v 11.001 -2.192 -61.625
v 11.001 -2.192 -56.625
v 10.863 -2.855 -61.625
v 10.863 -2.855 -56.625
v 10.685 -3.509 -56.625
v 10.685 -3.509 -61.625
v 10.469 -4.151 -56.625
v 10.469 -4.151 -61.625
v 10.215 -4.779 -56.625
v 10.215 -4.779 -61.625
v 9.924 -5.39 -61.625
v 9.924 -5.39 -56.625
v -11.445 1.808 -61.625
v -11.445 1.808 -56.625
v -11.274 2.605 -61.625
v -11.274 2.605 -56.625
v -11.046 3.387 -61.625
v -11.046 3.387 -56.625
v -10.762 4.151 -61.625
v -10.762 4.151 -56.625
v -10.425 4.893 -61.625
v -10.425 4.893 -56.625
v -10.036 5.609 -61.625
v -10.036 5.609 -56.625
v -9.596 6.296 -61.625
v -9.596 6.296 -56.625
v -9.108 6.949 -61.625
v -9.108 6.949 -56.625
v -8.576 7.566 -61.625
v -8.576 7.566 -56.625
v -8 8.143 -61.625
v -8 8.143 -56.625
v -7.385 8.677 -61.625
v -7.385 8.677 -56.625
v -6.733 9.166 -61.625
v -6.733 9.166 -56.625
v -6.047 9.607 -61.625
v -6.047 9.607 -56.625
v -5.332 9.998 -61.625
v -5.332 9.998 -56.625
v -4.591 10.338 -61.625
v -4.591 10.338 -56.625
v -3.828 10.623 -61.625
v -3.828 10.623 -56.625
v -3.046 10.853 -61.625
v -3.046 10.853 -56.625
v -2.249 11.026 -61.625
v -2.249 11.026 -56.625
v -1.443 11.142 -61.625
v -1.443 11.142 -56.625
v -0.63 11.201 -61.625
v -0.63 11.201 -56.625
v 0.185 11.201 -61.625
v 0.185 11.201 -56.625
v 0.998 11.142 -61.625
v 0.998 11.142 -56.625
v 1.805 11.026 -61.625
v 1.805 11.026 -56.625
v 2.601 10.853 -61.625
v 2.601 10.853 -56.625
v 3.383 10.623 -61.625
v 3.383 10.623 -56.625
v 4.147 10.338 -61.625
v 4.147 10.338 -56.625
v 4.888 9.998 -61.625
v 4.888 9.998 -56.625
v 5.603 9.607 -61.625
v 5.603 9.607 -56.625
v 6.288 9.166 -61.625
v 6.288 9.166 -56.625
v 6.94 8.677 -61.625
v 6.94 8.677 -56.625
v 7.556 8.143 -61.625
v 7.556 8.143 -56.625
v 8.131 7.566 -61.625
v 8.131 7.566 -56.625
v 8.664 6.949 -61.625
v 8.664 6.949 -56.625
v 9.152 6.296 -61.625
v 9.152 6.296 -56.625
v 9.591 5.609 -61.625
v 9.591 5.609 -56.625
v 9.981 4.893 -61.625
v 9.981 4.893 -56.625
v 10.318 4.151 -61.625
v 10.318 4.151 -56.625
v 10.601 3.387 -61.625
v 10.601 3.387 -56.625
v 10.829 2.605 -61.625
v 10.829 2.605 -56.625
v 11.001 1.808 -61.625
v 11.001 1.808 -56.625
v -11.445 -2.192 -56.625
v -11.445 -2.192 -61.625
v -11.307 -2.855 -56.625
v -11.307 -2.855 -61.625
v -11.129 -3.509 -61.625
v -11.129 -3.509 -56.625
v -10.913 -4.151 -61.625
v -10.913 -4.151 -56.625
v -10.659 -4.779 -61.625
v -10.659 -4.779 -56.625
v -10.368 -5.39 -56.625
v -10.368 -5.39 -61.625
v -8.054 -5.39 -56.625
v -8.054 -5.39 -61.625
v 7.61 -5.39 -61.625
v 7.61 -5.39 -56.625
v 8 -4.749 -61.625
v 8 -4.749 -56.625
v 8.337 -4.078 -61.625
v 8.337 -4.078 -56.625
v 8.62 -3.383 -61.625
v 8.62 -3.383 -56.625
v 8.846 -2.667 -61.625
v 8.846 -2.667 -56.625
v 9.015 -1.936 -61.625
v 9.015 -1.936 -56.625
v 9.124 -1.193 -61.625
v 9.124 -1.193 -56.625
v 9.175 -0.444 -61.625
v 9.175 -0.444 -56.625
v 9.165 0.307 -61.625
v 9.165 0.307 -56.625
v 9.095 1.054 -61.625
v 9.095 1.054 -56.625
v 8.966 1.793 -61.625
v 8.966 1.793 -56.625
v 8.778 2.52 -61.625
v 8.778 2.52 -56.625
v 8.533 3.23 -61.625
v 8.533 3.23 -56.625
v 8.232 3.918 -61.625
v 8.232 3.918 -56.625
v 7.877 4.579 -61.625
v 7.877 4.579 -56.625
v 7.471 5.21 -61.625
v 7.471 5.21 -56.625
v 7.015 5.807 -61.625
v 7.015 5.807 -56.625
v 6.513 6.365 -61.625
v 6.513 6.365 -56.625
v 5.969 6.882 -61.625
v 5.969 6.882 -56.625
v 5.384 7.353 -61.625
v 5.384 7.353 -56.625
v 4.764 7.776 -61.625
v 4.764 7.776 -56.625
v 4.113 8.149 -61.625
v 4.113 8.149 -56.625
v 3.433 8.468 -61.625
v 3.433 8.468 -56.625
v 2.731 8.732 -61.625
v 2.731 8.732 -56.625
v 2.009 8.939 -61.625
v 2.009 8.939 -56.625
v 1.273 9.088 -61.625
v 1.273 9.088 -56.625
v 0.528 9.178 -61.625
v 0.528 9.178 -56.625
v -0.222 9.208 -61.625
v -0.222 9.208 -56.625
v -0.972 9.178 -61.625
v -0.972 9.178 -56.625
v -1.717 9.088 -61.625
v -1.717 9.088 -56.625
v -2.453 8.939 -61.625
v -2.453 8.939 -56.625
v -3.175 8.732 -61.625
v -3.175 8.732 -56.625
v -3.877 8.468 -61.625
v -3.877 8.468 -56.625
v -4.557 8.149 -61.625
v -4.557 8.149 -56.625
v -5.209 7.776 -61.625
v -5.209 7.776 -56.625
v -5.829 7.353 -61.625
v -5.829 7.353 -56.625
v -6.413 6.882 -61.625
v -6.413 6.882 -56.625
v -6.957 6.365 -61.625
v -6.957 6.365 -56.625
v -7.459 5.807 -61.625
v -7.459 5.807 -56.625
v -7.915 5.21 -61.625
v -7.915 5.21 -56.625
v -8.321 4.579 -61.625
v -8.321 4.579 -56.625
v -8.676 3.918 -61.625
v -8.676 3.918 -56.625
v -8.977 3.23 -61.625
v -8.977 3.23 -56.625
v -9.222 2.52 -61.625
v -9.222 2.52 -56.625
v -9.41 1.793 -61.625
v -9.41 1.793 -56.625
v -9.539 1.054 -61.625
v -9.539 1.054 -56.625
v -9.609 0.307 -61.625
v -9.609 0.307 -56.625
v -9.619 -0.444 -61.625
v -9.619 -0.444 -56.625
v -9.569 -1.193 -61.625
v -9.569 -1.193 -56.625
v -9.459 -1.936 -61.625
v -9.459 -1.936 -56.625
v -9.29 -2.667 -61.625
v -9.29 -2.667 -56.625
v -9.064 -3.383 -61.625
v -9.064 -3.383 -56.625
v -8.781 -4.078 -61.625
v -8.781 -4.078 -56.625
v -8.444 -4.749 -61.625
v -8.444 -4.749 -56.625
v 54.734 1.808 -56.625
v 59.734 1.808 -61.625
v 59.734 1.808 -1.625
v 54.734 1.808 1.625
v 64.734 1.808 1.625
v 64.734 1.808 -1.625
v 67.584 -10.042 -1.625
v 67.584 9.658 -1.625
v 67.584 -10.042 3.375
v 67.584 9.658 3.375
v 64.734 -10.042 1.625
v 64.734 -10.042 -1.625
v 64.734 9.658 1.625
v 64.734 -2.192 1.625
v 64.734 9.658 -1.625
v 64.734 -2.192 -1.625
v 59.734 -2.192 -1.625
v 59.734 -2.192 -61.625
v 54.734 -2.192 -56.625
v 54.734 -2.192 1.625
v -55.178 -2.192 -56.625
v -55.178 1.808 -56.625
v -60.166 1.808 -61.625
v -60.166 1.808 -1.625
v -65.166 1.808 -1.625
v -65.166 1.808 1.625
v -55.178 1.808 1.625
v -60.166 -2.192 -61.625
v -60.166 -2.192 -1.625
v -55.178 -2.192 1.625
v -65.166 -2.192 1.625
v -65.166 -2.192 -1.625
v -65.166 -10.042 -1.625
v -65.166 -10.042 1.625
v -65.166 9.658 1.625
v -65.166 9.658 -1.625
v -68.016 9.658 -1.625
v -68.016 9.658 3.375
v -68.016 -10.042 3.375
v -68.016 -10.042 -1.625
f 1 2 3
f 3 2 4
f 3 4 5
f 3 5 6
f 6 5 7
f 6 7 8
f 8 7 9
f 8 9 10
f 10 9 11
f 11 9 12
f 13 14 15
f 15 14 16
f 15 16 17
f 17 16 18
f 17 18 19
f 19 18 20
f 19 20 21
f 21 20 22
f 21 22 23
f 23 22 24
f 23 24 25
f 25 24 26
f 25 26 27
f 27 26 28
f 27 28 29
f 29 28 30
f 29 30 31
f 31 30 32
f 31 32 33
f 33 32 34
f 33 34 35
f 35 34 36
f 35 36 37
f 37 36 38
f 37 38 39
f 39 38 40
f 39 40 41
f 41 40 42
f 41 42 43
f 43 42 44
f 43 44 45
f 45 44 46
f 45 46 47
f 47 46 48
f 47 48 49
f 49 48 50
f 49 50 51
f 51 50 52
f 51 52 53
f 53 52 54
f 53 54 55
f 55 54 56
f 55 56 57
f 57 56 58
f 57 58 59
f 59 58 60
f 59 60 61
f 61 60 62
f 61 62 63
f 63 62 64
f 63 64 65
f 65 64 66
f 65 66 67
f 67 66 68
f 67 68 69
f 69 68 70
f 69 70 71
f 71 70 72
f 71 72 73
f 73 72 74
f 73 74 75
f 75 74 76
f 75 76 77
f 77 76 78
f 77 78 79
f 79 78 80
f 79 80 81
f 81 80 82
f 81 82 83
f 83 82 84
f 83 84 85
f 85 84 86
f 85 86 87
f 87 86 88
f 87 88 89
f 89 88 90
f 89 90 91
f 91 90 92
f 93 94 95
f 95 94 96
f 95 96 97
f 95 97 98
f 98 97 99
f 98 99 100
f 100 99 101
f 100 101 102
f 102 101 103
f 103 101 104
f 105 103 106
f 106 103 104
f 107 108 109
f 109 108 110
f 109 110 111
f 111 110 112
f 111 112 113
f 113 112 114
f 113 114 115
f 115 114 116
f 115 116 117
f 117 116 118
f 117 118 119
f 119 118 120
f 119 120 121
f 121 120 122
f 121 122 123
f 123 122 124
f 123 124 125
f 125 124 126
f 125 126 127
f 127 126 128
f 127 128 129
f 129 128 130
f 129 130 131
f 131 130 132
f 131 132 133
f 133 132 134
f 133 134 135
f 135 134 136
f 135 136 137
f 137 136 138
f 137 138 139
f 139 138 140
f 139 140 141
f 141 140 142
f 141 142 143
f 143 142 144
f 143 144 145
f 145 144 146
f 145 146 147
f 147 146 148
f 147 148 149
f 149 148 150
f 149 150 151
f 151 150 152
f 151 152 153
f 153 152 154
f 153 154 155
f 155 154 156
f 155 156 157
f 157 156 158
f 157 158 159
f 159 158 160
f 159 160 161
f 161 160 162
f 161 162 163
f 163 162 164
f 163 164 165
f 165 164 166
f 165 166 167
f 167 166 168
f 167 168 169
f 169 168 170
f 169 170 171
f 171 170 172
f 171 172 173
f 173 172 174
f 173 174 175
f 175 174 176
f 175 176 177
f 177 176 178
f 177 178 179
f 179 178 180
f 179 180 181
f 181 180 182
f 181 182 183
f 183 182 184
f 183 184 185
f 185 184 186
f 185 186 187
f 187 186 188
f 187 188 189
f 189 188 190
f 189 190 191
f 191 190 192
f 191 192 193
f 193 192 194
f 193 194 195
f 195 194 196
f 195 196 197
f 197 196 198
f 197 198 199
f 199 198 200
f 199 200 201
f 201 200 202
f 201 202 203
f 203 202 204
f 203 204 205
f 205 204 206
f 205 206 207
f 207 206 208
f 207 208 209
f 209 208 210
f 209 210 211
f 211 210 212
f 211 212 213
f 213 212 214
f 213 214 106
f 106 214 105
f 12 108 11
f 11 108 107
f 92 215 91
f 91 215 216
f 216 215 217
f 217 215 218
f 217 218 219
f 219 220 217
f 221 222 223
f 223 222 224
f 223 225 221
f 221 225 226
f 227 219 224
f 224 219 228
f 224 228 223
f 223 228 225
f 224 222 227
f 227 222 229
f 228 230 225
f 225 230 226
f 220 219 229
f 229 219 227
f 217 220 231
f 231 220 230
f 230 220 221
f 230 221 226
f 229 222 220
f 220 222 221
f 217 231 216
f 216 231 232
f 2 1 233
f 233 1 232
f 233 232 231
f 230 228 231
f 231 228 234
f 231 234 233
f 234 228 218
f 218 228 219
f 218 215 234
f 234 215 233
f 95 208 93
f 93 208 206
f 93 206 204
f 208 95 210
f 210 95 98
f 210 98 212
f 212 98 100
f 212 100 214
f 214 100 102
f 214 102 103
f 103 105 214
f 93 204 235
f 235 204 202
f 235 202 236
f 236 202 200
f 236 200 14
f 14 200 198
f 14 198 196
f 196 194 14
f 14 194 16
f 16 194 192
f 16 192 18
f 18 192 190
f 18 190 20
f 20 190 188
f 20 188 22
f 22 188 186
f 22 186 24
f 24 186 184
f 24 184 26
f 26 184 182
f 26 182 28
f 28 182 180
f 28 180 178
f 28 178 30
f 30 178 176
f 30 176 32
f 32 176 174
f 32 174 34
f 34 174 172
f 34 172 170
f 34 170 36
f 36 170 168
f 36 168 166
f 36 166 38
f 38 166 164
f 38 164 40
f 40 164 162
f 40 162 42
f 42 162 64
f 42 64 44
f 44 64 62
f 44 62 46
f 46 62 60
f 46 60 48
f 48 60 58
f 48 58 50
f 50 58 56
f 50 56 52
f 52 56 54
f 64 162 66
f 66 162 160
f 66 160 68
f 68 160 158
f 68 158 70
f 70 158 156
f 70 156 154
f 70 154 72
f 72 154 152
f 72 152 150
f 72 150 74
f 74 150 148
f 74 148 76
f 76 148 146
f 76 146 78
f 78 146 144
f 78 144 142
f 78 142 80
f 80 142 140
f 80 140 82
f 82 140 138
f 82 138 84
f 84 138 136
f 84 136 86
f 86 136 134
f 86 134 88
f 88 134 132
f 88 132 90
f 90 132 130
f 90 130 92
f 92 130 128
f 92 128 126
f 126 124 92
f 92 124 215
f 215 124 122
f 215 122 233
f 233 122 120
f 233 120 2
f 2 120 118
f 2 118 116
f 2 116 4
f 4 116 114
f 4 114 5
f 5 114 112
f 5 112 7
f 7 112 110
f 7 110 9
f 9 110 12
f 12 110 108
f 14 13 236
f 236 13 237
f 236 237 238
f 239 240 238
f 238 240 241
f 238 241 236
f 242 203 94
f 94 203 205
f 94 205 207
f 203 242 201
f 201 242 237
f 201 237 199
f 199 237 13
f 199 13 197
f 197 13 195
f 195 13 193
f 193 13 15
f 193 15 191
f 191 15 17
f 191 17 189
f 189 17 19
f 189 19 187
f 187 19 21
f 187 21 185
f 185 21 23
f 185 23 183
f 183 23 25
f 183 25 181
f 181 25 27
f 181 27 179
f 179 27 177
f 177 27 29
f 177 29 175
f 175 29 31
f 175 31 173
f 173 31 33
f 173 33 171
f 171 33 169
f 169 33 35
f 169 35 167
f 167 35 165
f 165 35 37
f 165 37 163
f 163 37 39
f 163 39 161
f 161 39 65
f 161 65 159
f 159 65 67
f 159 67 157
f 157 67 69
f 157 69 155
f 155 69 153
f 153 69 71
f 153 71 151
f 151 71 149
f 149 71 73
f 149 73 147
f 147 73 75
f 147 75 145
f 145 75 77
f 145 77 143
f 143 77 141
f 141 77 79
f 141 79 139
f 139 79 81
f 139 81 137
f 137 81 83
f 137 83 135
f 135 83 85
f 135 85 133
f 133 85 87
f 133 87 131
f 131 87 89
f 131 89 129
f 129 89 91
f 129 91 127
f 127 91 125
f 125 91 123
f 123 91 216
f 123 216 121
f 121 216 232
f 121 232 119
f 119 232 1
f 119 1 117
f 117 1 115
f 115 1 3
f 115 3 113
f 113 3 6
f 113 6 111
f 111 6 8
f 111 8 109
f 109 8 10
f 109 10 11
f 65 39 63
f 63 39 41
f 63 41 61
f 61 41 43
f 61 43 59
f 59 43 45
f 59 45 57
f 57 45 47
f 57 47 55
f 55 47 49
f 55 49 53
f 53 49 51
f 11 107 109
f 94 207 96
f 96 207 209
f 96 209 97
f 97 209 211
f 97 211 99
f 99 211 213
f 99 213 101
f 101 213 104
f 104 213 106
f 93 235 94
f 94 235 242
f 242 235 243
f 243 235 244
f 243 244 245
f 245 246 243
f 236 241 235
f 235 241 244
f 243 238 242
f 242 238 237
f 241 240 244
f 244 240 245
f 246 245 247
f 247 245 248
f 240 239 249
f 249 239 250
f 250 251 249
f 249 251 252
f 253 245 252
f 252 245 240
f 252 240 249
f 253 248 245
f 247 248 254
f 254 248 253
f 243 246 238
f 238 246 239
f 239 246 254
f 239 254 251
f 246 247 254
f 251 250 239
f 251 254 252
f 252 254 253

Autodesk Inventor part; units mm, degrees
ref_plane "YZ Plane" through (0, 0, 0) normal (1, 0, 0) x (0, 1, 0)
ref_plane "XZ Plane" through (0, 0, 0) normal (0, 1, 0) x (-1, 0, 0)
ref_plane "XY Plane" through (0, 0, 0) normal (0, 0, 1) x (1, 0, 0)
sketch "Skizze1" plane through (0, 0, 0) normal (0, 0, 1) x (1, 0, 0)
  line L0 (-68.016, 1.808) -> (67.584, 1.808)
  line L1 (67.584, 1.808) -> (67.584, -2.192)
  line L2 (67.584, -2.192) -> (-68.016, -2.192)
  line L3 (-68.016, -2.192) -> (-68.016, 1.808)
  line L4 (-68.016, 1.808) -> (67.584, -2.192) construction
  line L5 (67.584, 1.808) -> (-68.016, -2.192) construction
  point P0 (0, 0)
  point P1 (-0.216, -0.192)
  point P2 (-0.216, -0.192)
  dimension "d0" = 135.6
  dimension "d1" = 4
extrude "Extrusion1" add sketch "Skizze1" along normal mid plane 3.25
ref_plane "Arbeitsebene1" through (-68.016, -0.192, 1.625) normal (0, -1, 0) x (1, 0, 0)
sketch "Skizze2" plane through (-68.016, -0.192, 1.625) normal (0, -1, 0) x (1, 0, 0)
  line L0 (0, -3.25) -> (0, 0) projected
  line L1 (0, -3.25) -> (135.6, -3.25) projected
  line L2 (0, 0) -> (2.85, 0)
  line L3 (2.85, 0) -> (2.85, -3.25)
  line L4 (2.85, -3.25) -> (0, -3.25)
  line L5 (0, -3.25) -> (0, 0)
  line L6 (0, 0) -> (0, 1.75)
  line L7 (0, 1.75) -> (2.85, 0)
  line L8 (135.6, -3.25) -> (135.6, 0) projected
  line L9 (135.6, 0) -> (132.75, 0)
  line L10 (132.75, 0) -> (132.75, -3.25)
  line L11 (132.75, -3.25) -> (135.6, -3.25)
  line L12 (135.6, -3.25) -> (135.6, 0)
  line L13 (135.6, 0) -> (135.6, 1.75)
  line L14 (135.6, 1.75) -> (132.75, 0)
  point P0 (68.016, -1.625)
  dimension "d4" = 2.85
  dimension "d5" = 1.75
  dimension "d6" = 2.85
extrude "Extrusion2" add sketch "Skizze2" along normal mid plane 19.7
sketch "Skizze7" plane through (0, 0, 1.625) normal (0, 0, 1) x (1, 0, 0)
  line L0 (64.734, -2.192) -> (-65.166, -2.192) projected
  line L1 (64.734, 1.808) -> (-65.166, 1.808) projected
  line L2 (64.734, -2.192) -> (59.734, -2.192)
  line L3 (59.734, -2.192) -> (59.734, 1.808)
  line L4 (59.734, 1.808) -> (64.734, 1.808)
  line L5 (64.734, 1.808) -> (64.734, -2.192)
  line L6 (-65.166, -2.192) -> (-65.166, -10.042) projected
  line L7 (-65.166, -2.192) -> (-60.166, -2.192)
  line L8 (-60.166, -2.192) -> (-60.166, 1.808)
  line L9 (-60.166, 1.808) -> (-65.166, 1.808)
  line L10 (-65.166, 1.808) -> (-65.166, -2.192)
  line L11 (59.734, 1.808) -> (-60.166, 1.808)
  line L12 (-60.166, 1.808) -> (-60.166, -2.192)
  line L13 (-60.166, -2.192) -> (59.734, -2.192)
  line L14 (59.734, -2.192) -> (59.734, 1.808)
  point P0 (0, 0)
  point P1 (-60.166, 1.808)
  dimension "d27" = 5
  dimension "d28" = 5
extrude "Extrusion7" add sketch "Skizze7" against normal blind 63.25 contours L0 L8 L1 L3
sketch "Skizze8" plane through (-65.166, -2.192, 1.625) normal (0, -1, 0) x (1, 0, 0)
  line L0 (124.9, -3.25) -> (124.9, -63.25) projected
  line L1 (129.9, 0) -> (0, 0) projected
  line L2 (124.9, -3.25) -> (119.9, -3.25)
  line L3 (119.9, -3.25) -> (119.9, 0)
  line L4 (119.9, 0) -> (124.9, 0)
  line L5 (124.9, 0) -> (124.9, -3.25)
  line L6 (4.9878, -3.25) -> (9.9878, -3.25)
  line L7 (9.9878, -3.25) -> (9.9878, 0)
  line L8 (9.9878, 0) -> (4.9878, 0)
  line L9 (4.9878, 0) -> (4.9878, -3.25)
  line L10 (119.9, 0) -> (9.9878, 0)
  line L11 (9.9878, 0) -> (9.9878, -58.25)
  line L12 (9.9878, -58.25) -> (119.9, -58.25)
  line L13 (119.9, -58.25) -> (119.9, 0)
  point P0 (65.166, -1.625)
  dimension "d31" = 5
  dimension "d32" = 5
  dimension "d34" = 58.25
extrude "Extrusion8" cut sketch "Skizze8" against normal through all contours L3 L13 L12 L11 L7 L1
ref_plane "Arbeitsebene2" through (-0.222, -2.192, 1.625) normal (1, 0, 0) x (0, 0, -1)
sketch "Skizze9" plane through (-55.1781, -2.192, -56.625) normal (0, 0, 1) x (1, 0, 0)
  circle A0 centre (54.9561, 2.0001) radius 10.8
  point P0 (55.1781, 2.192)
  dimension "d38" = 21.6
extrude "Extrusion9" cut sketch "Skizze9" against normal through all
sketch "Skizze10" plane through (-55.1781, -2.192, -56.625) normal (0, 0, 1) x (1, 0, 0)
  circle A0 centre (54.956, 1.9999) radius 9.4
  circle A1 centre (54.956, 1.9999) radius 11.4
  line L0 (39.8004, -3.1984) -> (71.2174, -3.1984)
  point P0 (55.1781, 2.192)
  point P1 (62.7878, -3.1984)
  point P2 (65.1018, -3.1984)
  point P3 (44.8102, -3.1984)
  point P4 (47.1242, -3.1984)
  dimension "d41" = 18.8
  dimension "d42" = 22.8
extrude "Extrusion10" add sketch "Skizze10" against normal blind 5 contours A0 L0 A1 picked at (65.5795, 2.9069)
properties part number "2025_07_28_Holder_H2_O2_reactor_BOLA_GL14_V0.3"
